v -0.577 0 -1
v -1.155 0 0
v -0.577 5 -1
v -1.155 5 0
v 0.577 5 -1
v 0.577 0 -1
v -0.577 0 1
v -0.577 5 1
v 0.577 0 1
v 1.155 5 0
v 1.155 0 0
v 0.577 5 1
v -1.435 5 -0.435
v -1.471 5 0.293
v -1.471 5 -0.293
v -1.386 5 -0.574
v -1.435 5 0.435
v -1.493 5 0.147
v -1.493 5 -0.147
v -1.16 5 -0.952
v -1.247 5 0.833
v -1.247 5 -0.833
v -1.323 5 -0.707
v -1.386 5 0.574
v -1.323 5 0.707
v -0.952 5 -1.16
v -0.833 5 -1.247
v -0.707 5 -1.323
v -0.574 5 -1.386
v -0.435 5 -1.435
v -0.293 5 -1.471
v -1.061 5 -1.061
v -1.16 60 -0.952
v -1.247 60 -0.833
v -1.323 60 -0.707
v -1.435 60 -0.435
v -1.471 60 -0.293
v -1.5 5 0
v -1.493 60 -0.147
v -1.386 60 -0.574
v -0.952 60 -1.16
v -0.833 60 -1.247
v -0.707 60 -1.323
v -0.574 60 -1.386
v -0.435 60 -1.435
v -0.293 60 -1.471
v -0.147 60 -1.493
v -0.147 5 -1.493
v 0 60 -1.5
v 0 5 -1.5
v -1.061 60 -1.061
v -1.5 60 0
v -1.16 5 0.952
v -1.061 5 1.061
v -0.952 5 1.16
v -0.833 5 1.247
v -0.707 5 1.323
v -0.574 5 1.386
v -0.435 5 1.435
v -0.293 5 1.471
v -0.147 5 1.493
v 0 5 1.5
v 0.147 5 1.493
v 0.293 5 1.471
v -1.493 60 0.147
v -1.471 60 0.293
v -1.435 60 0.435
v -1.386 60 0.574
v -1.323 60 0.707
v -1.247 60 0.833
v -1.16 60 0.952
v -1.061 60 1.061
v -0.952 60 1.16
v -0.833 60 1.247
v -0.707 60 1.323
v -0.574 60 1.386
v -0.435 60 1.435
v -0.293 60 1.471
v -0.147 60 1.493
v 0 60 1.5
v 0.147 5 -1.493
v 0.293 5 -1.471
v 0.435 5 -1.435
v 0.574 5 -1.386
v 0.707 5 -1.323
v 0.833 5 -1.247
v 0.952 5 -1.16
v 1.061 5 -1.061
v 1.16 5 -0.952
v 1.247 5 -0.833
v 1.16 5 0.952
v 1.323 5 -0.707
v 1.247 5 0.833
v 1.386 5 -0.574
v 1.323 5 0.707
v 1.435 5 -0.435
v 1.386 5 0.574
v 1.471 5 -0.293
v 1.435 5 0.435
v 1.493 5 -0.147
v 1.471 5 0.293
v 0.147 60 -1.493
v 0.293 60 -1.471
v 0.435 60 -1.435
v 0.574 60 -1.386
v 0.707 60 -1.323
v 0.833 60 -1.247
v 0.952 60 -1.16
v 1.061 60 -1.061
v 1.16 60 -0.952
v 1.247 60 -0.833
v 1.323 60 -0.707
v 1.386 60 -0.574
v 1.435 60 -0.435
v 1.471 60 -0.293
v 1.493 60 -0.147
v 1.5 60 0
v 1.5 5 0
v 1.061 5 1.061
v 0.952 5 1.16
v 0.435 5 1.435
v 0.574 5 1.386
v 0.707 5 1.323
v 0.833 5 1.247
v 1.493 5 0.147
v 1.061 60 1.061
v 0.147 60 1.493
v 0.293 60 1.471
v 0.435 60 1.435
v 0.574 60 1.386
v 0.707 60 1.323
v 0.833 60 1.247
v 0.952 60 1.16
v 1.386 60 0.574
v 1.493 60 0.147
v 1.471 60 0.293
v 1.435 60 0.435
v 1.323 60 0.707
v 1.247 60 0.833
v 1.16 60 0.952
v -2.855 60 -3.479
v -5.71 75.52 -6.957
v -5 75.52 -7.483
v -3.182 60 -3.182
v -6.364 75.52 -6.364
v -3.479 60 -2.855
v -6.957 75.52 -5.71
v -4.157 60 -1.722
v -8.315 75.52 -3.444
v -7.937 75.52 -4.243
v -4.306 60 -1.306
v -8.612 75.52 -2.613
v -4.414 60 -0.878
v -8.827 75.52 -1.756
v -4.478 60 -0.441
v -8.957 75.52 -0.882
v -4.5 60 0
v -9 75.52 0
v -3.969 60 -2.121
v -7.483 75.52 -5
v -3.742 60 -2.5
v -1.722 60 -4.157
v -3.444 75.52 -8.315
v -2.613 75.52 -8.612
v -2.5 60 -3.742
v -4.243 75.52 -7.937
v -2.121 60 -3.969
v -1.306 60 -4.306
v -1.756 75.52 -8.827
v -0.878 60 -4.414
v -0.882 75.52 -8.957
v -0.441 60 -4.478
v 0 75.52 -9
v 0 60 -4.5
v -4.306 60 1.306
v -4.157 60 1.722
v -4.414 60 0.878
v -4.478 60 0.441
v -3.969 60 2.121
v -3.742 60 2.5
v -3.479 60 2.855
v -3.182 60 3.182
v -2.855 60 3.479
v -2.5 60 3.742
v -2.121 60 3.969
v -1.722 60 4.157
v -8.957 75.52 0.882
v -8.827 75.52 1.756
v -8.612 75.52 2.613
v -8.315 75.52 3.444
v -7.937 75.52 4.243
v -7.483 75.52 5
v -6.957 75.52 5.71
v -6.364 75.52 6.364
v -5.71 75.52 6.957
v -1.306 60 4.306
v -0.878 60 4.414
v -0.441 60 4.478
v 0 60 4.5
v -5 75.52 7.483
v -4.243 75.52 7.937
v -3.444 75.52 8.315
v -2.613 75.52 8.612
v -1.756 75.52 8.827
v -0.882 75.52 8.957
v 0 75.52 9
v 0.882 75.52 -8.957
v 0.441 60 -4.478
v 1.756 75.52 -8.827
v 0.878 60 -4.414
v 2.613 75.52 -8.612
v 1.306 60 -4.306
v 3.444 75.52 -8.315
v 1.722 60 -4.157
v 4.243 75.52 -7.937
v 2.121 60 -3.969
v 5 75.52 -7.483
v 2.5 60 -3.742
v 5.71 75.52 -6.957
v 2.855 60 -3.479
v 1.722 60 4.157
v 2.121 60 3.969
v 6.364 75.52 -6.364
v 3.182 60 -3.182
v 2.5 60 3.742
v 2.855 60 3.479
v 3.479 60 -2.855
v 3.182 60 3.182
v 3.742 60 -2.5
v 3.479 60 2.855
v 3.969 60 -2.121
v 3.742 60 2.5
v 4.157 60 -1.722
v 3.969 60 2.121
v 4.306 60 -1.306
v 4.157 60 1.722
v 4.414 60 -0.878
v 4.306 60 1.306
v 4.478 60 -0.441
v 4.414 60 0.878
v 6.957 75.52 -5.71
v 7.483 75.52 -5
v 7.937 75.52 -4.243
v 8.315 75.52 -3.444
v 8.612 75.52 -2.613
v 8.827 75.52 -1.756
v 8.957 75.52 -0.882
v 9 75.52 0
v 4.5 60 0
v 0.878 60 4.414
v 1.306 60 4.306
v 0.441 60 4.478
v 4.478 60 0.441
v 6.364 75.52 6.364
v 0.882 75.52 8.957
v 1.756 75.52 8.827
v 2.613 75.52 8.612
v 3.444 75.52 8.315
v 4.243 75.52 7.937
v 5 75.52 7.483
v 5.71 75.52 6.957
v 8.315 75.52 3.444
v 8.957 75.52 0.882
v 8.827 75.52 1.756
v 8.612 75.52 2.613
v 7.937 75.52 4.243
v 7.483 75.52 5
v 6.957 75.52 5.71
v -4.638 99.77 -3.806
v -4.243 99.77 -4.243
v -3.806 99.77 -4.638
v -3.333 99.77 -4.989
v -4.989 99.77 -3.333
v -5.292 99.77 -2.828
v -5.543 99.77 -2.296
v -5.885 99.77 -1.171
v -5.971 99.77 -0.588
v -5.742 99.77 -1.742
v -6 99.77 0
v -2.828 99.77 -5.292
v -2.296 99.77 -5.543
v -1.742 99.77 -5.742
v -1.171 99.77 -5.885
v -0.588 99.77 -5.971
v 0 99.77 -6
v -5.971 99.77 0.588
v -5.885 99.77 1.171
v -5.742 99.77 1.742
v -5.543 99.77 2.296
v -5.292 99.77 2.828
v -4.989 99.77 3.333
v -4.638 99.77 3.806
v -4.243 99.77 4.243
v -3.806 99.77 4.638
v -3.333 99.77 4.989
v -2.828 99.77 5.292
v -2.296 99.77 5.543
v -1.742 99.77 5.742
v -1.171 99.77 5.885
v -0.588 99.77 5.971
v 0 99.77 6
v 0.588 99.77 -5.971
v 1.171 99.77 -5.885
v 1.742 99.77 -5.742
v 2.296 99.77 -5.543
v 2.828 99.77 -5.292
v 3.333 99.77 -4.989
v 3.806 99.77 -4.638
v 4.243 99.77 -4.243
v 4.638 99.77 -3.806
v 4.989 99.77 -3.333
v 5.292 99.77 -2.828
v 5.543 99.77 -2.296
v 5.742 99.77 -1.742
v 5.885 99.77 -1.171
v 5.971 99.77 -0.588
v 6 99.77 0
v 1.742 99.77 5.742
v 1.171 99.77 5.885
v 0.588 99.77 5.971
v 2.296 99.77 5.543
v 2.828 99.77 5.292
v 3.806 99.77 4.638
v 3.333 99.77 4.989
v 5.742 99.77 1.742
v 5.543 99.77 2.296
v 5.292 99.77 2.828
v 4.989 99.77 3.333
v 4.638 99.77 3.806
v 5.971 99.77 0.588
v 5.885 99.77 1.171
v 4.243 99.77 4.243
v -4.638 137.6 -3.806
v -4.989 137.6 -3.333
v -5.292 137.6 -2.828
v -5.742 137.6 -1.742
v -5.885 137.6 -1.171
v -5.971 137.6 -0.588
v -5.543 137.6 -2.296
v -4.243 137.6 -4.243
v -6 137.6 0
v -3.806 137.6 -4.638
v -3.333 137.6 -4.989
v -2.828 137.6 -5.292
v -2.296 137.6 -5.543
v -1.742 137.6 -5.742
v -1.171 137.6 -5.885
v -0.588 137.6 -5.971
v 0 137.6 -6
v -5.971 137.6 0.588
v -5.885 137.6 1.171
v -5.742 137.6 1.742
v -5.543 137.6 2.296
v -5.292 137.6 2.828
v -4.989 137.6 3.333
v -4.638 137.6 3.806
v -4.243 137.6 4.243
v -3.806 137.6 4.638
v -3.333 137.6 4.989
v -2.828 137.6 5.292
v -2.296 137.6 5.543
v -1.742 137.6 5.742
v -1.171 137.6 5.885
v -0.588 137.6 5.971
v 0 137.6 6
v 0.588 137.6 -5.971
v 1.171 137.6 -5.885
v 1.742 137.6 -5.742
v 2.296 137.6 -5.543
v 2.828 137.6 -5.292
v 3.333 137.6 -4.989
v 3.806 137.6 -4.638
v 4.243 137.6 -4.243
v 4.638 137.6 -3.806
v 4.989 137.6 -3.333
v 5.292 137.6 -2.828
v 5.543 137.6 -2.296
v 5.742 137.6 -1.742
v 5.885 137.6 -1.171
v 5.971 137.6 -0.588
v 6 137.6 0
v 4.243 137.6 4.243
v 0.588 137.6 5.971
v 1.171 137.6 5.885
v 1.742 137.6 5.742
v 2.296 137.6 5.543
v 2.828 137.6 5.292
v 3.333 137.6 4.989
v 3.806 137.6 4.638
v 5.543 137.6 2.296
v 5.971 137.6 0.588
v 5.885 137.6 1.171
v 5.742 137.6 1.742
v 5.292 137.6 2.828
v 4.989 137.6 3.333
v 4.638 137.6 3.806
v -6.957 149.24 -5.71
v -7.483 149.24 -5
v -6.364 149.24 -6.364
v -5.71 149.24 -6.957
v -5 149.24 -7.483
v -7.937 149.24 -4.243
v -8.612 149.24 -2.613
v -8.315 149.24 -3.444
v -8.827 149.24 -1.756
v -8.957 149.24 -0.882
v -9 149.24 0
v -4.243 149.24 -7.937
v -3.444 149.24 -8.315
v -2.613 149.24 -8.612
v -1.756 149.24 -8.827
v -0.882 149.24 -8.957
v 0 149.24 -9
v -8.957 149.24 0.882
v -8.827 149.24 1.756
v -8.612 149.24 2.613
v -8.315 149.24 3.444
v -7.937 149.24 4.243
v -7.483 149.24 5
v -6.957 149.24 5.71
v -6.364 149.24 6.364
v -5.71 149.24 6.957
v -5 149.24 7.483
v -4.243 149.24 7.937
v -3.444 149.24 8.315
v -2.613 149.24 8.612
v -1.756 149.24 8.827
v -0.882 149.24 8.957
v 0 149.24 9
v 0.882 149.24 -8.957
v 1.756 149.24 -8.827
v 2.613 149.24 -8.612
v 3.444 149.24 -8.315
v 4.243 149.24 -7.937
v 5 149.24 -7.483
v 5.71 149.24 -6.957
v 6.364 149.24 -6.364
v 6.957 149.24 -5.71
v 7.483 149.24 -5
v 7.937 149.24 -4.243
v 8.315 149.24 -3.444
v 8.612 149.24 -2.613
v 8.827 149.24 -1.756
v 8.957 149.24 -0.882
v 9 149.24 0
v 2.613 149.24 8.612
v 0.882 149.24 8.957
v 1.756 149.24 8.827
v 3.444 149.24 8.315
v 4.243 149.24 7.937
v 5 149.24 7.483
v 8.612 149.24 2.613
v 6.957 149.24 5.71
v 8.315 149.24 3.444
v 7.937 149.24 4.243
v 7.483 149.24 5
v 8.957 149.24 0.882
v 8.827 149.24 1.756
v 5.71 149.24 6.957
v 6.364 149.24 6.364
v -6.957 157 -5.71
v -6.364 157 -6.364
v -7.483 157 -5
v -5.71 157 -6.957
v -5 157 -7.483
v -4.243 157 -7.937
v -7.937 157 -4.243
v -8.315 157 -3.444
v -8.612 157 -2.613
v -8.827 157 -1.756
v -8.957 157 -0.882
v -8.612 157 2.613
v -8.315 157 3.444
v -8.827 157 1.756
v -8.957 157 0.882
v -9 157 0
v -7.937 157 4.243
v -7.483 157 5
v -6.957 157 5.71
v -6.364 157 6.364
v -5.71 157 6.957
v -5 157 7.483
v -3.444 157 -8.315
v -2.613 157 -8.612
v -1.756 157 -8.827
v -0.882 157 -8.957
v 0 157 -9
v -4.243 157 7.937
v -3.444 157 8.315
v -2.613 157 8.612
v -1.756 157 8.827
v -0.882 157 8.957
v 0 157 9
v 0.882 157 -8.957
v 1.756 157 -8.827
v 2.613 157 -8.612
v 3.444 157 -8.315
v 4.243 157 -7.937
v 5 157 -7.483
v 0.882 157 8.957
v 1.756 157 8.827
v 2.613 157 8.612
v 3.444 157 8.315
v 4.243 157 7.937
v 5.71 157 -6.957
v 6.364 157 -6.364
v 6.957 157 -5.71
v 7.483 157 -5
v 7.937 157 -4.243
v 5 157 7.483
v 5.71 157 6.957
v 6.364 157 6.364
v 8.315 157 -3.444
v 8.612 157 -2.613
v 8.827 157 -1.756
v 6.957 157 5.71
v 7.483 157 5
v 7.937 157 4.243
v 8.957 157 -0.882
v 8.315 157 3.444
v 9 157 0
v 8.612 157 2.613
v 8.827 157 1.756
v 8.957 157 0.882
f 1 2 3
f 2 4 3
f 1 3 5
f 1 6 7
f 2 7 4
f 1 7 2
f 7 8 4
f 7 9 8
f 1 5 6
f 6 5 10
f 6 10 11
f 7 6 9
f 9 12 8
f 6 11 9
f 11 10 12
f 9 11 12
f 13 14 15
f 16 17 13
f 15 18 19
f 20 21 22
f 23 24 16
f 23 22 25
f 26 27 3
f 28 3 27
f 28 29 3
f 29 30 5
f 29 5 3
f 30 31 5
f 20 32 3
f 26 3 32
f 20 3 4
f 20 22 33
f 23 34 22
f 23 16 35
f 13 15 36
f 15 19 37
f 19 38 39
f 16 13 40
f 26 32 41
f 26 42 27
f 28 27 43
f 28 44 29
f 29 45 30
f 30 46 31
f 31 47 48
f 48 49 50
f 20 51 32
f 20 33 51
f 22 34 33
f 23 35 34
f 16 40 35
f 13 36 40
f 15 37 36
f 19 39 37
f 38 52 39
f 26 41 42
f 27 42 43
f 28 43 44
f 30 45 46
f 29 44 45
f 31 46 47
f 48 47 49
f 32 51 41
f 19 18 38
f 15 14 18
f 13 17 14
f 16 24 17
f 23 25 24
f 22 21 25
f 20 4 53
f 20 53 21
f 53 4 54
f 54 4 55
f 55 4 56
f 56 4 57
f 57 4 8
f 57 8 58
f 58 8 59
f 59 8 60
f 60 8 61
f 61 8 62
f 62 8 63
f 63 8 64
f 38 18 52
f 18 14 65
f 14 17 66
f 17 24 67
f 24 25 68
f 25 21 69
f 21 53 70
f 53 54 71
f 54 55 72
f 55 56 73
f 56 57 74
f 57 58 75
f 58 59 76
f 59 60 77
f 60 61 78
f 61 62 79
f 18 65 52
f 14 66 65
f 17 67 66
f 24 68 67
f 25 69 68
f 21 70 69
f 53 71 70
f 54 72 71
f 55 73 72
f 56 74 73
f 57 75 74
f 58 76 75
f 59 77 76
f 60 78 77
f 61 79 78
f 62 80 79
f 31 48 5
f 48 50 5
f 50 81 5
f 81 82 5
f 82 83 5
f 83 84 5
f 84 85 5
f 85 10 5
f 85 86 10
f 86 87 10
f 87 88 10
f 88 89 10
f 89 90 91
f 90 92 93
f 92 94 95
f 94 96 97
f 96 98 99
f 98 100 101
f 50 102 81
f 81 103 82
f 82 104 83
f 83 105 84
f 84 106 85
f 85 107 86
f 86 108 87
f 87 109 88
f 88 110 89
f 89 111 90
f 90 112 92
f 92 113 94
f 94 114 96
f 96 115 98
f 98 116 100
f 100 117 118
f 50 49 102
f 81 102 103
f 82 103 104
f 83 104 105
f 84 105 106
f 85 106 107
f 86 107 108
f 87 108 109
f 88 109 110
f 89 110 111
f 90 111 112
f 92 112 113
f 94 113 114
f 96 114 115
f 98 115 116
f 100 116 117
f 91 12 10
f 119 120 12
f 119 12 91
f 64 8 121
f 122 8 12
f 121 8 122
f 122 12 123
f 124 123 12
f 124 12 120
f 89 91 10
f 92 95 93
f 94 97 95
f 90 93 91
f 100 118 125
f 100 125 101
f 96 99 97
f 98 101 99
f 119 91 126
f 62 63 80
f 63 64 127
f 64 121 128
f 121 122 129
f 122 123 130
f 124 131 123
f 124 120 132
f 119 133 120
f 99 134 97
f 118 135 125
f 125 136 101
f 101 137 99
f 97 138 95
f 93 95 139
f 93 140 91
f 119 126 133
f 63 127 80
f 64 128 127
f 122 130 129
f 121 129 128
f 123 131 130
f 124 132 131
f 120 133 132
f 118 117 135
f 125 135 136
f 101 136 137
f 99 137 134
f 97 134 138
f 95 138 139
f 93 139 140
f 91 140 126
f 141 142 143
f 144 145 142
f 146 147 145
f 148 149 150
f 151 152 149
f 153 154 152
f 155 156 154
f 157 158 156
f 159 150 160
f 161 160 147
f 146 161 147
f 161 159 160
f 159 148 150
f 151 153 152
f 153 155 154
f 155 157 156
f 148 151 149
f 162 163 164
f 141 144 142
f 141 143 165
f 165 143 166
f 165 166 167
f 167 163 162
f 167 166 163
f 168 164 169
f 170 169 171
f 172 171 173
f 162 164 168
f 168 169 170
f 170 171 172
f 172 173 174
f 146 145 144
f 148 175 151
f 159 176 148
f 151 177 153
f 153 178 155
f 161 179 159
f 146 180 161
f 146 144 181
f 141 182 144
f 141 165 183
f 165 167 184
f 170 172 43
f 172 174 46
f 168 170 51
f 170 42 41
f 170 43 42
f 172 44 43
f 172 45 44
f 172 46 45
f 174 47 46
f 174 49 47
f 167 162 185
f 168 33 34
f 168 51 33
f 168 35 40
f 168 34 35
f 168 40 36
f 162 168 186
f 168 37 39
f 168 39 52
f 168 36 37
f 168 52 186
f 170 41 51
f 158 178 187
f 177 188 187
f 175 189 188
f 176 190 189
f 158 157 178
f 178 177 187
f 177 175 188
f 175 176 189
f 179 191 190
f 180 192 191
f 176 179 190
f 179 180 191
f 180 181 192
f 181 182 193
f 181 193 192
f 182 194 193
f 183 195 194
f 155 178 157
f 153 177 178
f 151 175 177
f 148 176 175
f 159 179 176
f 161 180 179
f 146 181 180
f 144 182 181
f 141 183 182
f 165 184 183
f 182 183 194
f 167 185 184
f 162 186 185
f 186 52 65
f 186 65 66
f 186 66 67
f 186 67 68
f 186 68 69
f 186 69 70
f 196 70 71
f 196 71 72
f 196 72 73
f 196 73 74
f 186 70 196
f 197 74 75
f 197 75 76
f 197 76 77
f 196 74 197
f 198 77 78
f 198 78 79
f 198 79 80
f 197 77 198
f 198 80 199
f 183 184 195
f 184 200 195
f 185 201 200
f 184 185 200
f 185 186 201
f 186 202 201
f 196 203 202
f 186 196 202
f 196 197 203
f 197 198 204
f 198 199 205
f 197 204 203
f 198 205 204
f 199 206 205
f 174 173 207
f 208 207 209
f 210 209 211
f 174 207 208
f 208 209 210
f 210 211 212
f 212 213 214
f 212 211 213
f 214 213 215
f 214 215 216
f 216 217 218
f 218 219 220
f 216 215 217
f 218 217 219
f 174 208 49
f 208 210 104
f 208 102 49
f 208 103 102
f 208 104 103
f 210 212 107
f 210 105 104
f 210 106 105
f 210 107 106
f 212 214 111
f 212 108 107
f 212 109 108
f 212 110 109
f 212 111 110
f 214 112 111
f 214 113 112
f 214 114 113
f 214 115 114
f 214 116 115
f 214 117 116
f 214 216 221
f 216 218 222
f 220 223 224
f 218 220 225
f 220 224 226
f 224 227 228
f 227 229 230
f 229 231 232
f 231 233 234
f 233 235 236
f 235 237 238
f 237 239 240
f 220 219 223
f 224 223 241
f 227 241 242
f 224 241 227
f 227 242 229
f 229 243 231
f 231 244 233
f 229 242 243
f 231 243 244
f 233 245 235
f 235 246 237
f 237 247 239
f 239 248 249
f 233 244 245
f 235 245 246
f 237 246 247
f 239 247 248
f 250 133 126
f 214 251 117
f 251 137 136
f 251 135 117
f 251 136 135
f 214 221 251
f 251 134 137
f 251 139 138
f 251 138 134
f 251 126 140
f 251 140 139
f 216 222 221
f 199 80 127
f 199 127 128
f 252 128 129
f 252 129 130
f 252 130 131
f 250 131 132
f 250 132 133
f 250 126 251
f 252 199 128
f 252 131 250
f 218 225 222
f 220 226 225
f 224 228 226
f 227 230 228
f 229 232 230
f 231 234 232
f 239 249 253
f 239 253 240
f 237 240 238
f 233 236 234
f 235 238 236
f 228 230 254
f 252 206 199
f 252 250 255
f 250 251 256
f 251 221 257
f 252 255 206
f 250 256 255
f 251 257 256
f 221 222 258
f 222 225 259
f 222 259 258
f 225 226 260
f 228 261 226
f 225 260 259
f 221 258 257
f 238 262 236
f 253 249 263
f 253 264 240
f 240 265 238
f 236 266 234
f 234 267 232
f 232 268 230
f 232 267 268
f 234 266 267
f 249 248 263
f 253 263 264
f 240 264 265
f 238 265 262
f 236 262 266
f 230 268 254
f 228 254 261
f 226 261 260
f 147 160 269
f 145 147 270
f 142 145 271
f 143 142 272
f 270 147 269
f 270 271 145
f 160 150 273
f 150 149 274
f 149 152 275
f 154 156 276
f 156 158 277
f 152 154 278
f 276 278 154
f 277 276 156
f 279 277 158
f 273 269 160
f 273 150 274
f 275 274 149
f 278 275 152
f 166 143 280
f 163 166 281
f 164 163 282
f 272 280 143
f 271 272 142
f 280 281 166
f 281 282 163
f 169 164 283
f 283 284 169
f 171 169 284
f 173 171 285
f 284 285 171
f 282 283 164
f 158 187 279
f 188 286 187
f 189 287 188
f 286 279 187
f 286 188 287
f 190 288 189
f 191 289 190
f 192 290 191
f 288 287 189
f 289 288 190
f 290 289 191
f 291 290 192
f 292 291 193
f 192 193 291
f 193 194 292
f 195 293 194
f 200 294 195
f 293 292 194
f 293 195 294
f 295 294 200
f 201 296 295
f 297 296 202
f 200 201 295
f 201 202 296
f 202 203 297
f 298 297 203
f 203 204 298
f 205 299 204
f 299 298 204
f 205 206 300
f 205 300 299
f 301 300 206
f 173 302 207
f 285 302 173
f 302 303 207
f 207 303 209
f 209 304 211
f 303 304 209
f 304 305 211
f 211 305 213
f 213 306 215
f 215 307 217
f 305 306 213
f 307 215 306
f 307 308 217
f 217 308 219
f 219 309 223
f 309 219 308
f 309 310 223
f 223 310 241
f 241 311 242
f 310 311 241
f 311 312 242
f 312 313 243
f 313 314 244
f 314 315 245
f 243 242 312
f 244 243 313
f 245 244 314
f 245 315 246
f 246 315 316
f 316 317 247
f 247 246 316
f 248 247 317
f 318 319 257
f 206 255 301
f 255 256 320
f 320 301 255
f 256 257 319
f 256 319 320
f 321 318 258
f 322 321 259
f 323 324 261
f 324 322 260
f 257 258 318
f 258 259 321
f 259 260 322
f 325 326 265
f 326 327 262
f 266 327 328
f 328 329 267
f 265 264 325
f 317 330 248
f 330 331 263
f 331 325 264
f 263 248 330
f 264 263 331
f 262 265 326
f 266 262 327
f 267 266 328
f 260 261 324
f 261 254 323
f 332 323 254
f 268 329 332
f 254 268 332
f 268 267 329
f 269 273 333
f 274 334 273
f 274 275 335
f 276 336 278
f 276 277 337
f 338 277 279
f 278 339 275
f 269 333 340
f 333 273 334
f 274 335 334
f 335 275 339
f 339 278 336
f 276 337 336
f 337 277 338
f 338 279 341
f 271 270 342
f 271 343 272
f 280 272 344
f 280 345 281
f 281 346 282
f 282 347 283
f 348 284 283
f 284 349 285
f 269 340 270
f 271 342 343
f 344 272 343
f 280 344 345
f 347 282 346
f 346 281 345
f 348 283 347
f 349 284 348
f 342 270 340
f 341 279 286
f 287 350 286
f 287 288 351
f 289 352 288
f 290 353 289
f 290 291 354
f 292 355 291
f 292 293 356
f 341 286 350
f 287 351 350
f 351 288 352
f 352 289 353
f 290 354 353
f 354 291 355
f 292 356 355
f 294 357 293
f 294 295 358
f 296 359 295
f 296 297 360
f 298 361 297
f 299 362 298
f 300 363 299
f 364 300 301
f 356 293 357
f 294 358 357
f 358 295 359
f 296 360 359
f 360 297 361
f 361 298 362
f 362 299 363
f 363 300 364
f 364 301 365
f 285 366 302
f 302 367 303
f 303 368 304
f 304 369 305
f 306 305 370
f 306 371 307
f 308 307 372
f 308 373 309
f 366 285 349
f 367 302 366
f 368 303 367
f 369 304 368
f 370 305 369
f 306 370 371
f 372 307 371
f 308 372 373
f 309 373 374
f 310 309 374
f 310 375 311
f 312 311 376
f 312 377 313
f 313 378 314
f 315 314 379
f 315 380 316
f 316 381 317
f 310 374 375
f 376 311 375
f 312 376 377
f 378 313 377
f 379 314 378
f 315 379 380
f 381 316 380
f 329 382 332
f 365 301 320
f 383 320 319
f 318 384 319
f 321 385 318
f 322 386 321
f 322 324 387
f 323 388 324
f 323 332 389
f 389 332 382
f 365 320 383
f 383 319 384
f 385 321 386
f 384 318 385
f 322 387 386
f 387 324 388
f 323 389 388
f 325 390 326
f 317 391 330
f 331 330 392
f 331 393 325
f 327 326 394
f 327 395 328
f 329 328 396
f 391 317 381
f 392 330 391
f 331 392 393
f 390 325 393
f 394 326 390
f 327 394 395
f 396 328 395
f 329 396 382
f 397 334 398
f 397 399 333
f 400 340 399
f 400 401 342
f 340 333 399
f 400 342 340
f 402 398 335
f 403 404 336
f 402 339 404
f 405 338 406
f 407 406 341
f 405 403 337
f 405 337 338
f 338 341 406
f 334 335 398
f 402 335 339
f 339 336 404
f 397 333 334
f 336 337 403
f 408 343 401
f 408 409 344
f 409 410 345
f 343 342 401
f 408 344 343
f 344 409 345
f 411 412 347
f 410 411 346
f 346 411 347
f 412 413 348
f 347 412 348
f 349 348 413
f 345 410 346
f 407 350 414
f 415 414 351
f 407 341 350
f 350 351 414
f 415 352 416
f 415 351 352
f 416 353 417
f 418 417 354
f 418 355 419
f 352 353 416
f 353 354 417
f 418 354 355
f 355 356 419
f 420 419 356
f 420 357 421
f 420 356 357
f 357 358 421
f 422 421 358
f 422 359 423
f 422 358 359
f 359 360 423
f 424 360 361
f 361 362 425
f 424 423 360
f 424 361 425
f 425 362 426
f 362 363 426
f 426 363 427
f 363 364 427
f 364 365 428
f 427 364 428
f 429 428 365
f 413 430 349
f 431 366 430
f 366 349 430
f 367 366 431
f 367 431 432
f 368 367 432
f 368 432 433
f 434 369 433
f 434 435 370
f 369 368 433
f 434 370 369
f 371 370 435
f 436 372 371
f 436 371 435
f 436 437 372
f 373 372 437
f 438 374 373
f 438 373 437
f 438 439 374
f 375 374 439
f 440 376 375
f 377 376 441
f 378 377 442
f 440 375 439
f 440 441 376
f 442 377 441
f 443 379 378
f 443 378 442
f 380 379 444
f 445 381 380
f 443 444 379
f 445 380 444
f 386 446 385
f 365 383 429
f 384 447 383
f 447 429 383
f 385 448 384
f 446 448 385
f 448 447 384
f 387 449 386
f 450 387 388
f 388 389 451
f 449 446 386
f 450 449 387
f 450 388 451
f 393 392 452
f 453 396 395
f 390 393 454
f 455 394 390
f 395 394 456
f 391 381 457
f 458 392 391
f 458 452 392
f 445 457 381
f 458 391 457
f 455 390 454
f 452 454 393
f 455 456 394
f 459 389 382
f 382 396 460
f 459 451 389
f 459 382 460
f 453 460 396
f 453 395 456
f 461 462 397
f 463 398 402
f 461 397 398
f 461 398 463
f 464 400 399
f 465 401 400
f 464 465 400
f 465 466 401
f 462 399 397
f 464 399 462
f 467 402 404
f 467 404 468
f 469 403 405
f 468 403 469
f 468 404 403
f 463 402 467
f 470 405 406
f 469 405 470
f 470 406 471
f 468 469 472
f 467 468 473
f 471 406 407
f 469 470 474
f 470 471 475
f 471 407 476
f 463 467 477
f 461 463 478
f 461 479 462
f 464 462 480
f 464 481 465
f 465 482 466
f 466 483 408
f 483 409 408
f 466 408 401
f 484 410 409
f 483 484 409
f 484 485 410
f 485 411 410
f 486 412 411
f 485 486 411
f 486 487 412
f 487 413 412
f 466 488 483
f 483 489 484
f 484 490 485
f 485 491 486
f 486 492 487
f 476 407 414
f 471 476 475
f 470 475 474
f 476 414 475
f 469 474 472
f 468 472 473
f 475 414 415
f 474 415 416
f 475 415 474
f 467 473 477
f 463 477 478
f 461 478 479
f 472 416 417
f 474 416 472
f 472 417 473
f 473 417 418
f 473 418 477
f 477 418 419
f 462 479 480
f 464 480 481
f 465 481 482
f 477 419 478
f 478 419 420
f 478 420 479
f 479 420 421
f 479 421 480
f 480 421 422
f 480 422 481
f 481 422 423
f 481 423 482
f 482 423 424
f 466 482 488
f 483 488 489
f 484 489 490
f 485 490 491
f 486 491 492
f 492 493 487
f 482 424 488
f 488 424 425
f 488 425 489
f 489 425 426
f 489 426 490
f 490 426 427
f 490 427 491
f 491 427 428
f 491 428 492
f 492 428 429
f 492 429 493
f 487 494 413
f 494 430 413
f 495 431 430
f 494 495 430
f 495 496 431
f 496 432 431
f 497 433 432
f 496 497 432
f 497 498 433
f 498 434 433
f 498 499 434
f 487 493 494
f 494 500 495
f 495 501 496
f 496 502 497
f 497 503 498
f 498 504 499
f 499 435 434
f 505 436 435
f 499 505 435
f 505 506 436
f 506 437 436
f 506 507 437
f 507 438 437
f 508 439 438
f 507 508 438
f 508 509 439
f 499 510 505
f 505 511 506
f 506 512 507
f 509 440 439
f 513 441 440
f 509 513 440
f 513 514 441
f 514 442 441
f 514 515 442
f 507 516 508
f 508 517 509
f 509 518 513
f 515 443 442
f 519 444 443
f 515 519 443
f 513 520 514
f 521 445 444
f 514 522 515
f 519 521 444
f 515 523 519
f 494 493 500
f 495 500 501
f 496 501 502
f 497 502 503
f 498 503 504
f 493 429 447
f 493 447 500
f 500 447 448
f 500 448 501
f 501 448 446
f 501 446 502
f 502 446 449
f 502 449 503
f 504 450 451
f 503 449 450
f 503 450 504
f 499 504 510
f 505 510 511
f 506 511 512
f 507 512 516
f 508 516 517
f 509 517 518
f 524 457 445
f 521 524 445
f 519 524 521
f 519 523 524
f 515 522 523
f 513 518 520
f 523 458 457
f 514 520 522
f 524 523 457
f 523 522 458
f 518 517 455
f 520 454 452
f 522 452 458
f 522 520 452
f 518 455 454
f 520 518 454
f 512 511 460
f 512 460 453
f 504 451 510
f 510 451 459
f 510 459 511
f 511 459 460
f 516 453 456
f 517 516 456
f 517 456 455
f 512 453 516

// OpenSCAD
// Wera 2054 Micro hex screwdriver, 2 × 60 mm
// Wera specifies the shaft diameter, shaft length and handle length. The archived OOMP record supplies the 18 mm handle envelope. Grip taper, cap and tip transition are illustrative.
// Units: mm
$fn = 64;
union() {
    translate([0, 0, 0]) rotate([-90, 0, 0])
        cylinder(h=5, r1=1.1547005383792517, r2=1.1547005383792517, $fn=6);
    translate([0, 5, 0]) rotate([-90, 0, 0])
        cylinder(h=55, r1=1.5, r2=1.5, $fn=64);
    translate([0, 60, 0]) rotate([-90, 0, 0])
        cylinder(h=15.52, r1=4.5, r2=9.0, $fn=64);
    translate([0, 75.52, 0]) rotate([-90, 0, 0])
        cylinder(h=24.25, r1=9.0, r2=6.0, $fn=64);
    translate([0, 99.77, 0]) rotate([-90, 0, 0])
        cylinder(h=37.83, r1=6.0, r2=6.0, $fn=64);
    translate([0, 137.6, 0]) rotate([-90, 0, 0])
        cylinder(h=11.639999999999999, r1=6.0, r2=9.0, $fn=64);
    translate([0, 149.23999999999998, 0]) rotate([-90, 0, 0])
        cylinder(h=7.76, r1=9.0, r2=9.0, $fn=64);
}
